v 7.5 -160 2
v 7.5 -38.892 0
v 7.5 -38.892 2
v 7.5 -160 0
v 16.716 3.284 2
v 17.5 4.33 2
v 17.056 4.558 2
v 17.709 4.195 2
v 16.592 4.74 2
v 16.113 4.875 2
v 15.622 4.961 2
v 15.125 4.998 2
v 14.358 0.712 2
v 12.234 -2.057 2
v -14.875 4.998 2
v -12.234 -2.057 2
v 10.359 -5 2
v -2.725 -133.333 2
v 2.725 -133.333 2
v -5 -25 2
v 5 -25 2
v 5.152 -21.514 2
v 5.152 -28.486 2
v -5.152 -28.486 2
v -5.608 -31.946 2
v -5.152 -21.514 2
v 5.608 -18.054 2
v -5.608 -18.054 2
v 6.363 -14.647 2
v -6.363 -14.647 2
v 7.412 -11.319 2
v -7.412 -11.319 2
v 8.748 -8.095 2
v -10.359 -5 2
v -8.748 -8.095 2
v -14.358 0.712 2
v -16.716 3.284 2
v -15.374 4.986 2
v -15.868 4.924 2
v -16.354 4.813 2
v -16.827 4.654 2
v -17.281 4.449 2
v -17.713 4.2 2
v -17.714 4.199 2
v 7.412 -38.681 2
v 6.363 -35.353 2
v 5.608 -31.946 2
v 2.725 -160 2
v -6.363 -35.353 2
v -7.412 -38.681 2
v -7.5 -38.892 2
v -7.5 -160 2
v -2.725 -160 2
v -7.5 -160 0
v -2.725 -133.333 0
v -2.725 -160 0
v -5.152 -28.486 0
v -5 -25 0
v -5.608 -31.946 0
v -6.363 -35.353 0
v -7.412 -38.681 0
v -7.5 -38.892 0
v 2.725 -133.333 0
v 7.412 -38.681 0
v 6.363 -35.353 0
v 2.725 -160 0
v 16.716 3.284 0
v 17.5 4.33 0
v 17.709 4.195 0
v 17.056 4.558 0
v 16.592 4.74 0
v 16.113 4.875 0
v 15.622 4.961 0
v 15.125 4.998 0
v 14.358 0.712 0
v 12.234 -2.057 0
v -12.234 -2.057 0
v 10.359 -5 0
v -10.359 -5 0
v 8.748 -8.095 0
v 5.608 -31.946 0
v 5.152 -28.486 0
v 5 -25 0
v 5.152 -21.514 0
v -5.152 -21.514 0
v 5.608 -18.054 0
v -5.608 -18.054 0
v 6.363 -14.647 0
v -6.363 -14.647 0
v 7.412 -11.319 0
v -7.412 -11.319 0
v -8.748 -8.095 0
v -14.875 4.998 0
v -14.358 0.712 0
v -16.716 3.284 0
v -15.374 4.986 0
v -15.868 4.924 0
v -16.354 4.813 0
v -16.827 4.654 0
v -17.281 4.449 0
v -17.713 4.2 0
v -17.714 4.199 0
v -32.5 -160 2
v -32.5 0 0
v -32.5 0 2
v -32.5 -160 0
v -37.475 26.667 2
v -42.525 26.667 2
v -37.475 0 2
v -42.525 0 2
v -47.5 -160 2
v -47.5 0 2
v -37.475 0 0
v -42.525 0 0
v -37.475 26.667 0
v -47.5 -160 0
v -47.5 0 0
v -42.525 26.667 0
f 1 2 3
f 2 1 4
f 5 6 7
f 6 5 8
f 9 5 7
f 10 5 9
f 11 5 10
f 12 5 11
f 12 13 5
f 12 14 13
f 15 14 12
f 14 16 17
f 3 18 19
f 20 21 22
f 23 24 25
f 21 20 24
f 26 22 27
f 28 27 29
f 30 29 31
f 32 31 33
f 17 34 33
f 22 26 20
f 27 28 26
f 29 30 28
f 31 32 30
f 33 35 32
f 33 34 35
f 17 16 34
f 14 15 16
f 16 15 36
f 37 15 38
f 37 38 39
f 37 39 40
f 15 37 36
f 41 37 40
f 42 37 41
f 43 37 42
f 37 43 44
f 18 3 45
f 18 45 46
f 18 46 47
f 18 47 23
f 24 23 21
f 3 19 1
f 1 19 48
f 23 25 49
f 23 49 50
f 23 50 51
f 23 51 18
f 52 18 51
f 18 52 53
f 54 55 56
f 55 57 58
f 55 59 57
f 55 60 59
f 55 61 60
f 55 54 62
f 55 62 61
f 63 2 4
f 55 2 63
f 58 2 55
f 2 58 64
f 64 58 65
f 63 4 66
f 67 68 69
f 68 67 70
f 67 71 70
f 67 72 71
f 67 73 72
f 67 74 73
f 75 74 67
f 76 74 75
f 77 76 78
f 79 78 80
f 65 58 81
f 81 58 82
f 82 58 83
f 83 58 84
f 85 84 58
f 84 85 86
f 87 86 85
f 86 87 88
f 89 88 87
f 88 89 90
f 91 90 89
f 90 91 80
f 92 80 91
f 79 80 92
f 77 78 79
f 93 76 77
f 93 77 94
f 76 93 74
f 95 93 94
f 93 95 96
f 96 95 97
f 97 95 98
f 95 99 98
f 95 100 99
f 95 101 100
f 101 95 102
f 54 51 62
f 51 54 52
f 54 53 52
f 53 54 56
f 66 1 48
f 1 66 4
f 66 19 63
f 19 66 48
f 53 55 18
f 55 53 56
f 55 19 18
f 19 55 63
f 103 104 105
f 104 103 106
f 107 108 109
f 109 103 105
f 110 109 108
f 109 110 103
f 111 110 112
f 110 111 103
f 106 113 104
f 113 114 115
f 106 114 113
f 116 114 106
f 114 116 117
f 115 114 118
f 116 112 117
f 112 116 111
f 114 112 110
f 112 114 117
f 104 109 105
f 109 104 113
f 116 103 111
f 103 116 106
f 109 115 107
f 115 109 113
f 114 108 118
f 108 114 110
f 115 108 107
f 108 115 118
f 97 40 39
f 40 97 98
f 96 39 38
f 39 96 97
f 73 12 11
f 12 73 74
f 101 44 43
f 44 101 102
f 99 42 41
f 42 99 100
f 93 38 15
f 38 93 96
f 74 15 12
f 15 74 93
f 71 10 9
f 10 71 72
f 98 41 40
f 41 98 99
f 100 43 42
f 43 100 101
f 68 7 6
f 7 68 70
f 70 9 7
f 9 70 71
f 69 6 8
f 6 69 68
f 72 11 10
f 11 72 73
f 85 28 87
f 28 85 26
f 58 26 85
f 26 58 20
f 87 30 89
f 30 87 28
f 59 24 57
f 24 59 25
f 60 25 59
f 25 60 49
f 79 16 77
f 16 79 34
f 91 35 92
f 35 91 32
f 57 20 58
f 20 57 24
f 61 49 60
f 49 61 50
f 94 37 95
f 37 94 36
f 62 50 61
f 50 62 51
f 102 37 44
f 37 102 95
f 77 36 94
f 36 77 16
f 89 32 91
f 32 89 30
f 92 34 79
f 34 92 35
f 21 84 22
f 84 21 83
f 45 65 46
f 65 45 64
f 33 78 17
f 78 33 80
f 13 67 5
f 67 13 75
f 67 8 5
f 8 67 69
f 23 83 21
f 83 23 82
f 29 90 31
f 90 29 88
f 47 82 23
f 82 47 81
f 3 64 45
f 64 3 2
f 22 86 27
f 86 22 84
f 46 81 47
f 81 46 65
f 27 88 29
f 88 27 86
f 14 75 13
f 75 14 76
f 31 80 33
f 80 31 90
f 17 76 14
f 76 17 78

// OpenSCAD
$fs=.5;
$fa=5;

// vim: foldmethod=marker commentstring=/*\ %s\ */
// 2.0mm height

slop = .2;
module oldhead( height, radius, separation) {
  translate([0,0-(.5*separation),0]) union() {
    hull() {
      translate([0-separation,0,0]) color("red") cylinder(h = height,r = radius);
      translate([0,separation,0]) color("red") cylinder(h = height,r = radius);
    }

    hull() {
      translate([separation,0,0]) color("red") cylinder(h = height,r = radius);
      translate([0,separation,0]) color("red") cylinder(h = height,r = radius);
    }
  }
}

module head( height, radius, separation) {/* {{{ */
  rotate([0,0,180]) hull() {
    translate([0-separation,0,0]) color("red") cylinder(h = height,r = radius);
    translate([0,separation*2,0]) color("green") cylinder(h = height,r = radius);
    translate([separation,0,0]) color("blue") cylinder(h = height,r = radius);
  }
} /* }}} */

module neck(height, width, depth) {
  translate([0-(.5*width),0-depth,0]) 
  difference() { 
    cube([width,depth,height], center=false);
    // translate([(width*.65)/2,0,0-.5*slop]) cube([.5*slop+(.35*width),(1/6)*depth,height+slop], center=false);
    translate([(0-.5*slop)+((width*.65)/2),0-.5*slop,0-.5*slop]) cube([slop+(.35*width),(.5*slop)+((1/6)*depth),height+slop], center=false);
  }
}

module body(height,radius,separation, width, depth,cutout) {
  difference() {
    union() { 
      head( height=height, radius=radius, depth=depth, separation=separation);
      neck( height=height, width=width, depth=depth);
    }
   // concave cutouts for capturing gunk with the tool 
   translate([0-cutout,-25,0]) translate([0,0,0-(.5*slop)]) cylinder(r=40,h=height+slop);
   translate([cutout,-25,0]) translate([0,0,0-(.5*slop)]) cylinder(r=40,h=height+slop);
  }
}

module extension(height, width, depth) {
  translate([0-(.5*width),0-depth,0]) 
  union() {
      cube([width,depth,height], center=false);
    translate([(.5*slop)+(width*.65)/2,depth,0]) cube([(.35*width)-slop,(1/6)*depth,height], center=false);
  }
}

module main() {
  body( depth=160, height=2, radius=5, separation=15, width=15,cutout=45);
     translate([-40 ,0,0])
  //  translate([-0 ,-160,0]) // testing
extension( height=2, width=15, depth=160);
}




main();
